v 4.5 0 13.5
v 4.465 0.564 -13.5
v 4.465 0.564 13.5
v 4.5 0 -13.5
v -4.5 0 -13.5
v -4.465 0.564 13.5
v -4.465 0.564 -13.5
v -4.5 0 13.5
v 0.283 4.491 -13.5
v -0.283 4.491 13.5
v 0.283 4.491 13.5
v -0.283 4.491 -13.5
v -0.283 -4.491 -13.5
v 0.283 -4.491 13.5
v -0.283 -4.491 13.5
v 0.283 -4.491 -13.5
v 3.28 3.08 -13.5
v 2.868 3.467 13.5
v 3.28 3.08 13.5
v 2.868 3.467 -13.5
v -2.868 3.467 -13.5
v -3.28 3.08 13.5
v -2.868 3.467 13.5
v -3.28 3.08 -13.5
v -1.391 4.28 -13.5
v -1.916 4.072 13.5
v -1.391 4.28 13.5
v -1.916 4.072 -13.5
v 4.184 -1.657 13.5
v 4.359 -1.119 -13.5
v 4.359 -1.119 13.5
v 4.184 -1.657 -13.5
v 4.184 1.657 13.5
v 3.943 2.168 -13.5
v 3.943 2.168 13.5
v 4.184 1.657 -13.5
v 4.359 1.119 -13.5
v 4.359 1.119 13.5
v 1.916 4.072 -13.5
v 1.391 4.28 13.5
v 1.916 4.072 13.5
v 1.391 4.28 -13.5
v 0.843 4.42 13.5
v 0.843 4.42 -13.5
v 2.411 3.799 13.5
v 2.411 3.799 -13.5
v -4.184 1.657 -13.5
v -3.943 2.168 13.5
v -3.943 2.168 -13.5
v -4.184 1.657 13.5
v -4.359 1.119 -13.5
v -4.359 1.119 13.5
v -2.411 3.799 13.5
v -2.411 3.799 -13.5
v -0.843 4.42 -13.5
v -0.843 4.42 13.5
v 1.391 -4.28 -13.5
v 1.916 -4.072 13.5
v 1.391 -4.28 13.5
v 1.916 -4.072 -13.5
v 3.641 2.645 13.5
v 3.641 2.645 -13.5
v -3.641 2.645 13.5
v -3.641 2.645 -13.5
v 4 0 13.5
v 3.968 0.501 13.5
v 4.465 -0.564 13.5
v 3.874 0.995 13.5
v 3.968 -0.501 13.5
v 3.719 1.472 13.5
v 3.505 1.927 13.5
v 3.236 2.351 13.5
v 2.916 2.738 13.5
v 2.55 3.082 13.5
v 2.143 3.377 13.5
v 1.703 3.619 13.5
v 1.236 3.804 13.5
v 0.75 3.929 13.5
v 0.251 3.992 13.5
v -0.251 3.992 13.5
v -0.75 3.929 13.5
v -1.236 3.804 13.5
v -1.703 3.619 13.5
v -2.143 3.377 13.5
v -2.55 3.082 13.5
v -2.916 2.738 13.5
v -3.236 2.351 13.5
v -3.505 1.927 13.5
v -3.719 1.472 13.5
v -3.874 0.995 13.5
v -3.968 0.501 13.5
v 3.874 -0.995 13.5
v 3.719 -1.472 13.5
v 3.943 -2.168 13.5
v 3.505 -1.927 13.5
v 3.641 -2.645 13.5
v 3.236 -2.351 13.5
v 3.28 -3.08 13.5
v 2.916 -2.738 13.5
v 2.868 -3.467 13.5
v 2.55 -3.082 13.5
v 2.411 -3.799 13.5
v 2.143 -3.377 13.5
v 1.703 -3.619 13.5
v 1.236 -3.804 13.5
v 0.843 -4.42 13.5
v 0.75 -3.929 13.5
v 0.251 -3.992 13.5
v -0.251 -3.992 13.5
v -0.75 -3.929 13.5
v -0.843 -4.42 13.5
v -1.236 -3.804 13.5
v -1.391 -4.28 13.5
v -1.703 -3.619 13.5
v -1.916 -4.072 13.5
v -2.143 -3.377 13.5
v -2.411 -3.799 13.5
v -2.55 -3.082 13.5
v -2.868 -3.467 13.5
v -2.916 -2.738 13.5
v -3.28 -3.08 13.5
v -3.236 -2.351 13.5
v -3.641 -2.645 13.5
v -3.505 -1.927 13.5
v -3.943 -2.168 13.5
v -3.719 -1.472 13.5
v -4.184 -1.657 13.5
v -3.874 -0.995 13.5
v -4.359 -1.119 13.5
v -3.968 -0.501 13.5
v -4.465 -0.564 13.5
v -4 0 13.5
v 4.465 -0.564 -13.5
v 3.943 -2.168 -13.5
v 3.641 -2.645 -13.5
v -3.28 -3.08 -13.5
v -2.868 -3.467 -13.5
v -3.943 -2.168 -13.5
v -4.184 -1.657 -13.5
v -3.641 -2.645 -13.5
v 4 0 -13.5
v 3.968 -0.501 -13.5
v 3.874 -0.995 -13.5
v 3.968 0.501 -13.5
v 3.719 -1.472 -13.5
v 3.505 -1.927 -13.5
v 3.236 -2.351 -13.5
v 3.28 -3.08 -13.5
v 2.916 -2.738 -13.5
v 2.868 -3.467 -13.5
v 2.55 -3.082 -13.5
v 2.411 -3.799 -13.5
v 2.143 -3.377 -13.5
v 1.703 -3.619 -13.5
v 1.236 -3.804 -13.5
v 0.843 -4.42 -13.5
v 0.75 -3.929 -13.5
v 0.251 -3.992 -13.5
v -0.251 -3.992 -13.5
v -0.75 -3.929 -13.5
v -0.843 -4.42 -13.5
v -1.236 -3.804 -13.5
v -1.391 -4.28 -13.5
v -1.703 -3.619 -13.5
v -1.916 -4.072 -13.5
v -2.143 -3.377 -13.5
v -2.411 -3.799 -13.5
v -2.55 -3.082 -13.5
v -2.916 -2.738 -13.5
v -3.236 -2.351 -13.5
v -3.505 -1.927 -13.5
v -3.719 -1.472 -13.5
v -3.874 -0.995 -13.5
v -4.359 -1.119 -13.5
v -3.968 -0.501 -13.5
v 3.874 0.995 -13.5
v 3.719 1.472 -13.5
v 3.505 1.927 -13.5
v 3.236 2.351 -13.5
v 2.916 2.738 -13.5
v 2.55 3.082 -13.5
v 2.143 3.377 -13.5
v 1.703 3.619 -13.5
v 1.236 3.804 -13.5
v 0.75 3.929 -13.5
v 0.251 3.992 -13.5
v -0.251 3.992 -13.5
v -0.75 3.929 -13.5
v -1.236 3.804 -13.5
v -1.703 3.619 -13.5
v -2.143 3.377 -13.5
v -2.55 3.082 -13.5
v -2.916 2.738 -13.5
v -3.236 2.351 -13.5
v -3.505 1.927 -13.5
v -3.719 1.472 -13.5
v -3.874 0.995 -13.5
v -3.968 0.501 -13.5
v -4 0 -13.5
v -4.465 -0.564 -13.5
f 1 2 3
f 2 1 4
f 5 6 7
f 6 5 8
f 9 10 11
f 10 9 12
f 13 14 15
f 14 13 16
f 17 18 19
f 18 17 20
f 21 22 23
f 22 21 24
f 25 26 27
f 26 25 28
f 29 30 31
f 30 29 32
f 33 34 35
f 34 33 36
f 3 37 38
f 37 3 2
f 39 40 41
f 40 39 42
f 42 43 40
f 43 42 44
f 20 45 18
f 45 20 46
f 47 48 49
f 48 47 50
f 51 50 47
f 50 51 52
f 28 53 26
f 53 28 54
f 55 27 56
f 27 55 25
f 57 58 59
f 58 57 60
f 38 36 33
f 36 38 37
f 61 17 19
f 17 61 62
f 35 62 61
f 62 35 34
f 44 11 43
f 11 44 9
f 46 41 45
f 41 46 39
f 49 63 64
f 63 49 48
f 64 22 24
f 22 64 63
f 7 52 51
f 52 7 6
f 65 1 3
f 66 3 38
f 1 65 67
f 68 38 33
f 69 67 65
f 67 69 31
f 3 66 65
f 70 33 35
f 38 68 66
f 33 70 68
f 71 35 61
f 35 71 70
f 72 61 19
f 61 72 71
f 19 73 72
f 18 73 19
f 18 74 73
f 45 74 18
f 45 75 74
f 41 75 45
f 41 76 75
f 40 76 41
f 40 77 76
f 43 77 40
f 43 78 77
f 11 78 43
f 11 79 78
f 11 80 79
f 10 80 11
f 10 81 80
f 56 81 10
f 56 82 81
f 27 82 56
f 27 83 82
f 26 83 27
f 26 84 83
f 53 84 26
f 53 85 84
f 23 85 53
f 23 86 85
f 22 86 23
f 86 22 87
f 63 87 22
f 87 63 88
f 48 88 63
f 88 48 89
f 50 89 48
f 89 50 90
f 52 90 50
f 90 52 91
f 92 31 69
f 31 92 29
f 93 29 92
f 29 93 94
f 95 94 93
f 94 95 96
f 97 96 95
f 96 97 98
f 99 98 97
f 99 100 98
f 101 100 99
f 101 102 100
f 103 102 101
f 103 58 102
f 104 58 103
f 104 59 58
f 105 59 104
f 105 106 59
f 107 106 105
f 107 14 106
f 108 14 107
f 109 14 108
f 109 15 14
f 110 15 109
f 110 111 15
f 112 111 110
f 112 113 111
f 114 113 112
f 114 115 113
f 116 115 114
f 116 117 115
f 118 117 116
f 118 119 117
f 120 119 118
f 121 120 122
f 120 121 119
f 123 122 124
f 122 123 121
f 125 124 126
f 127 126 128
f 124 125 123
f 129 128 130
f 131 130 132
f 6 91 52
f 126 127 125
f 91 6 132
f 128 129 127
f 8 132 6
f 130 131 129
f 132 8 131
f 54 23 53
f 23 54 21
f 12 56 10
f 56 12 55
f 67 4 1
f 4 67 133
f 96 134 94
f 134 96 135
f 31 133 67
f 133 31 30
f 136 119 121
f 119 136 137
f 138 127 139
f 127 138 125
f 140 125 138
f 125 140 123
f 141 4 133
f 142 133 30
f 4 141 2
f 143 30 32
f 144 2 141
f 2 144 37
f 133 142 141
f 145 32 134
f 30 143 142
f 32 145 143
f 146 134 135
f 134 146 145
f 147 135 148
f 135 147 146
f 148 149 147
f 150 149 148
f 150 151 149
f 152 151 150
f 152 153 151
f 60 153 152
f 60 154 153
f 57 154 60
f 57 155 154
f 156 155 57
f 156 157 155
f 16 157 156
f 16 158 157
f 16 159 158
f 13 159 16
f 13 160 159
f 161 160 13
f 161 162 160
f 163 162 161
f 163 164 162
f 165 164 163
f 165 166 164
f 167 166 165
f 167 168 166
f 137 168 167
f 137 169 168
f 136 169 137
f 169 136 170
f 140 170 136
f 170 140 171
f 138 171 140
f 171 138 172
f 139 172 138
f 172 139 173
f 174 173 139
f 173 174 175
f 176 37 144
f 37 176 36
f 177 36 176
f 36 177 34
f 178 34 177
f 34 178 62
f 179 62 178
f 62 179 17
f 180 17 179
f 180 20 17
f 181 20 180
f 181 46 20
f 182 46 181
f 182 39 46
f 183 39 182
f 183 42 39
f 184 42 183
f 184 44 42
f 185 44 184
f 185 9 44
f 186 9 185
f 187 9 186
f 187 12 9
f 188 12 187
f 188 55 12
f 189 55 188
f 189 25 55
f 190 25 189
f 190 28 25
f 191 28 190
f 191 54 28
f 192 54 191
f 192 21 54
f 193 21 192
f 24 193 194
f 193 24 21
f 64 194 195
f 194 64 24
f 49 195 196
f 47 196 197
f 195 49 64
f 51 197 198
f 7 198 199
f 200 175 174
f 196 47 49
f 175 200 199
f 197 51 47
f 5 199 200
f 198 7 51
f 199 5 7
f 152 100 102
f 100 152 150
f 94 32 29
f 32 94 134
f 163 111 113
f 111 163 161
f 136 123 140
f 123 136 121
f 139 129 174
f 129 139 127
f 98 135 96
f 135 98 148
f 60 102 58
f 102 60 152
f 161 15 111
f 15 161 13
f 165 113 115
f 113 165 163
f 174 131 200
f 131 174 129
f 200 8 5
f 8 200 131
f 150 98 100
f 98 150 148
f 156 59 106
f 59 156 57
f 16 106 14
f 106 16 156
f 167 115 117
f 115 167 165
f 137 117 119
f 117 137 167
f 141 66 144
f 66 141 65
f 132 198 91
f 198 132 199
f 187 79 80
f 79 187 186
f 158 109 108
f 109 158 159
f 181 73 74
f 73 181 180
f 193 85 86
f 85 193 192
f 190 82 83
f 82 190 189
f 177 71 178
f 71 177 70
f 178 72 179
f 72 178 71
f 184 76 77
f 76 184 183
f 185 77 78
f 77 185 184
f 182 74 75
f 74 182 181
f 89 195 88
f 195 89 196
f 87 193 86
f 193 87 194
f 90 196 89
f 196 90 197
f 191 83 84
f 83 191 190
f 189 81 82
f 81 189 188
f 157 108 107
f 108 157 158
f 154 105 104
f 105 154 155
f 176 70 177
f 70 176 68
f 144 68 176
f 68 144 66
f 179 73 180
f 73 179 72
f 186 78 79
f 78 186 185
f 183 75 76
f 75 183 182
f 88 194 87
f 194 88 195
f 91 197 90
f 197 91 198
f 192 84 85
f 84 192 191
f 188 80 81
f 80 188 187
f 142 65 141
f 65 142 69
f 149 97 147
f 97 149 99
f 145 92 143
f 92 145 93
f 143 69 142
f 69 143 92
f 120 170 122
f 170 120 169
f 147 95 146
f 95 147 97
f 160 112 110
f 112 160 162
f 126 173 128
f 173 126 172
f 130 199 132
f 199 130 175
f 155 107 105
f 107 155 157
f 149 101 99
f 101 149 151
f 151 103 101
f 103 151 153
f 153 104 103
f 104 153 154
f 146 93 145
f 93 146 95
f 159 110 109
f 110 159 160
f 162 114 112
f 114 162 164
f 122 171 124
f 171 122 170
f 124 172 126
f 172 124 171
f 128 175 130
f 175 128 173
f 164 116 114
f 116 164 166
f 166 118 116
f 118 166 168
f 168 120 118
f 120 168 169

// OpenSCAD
$fn = 50;


difference() {
	union() {
		translate(v = [0, 0, -13.5000000000]) {
			cylinder(h = 27, r = 4.5000000000);
		}
	}
	union() {
		translate(v = [0, 0, -100.0000000000]) {
			cylinder(h = 200, r = 4);
		}
	}
}
